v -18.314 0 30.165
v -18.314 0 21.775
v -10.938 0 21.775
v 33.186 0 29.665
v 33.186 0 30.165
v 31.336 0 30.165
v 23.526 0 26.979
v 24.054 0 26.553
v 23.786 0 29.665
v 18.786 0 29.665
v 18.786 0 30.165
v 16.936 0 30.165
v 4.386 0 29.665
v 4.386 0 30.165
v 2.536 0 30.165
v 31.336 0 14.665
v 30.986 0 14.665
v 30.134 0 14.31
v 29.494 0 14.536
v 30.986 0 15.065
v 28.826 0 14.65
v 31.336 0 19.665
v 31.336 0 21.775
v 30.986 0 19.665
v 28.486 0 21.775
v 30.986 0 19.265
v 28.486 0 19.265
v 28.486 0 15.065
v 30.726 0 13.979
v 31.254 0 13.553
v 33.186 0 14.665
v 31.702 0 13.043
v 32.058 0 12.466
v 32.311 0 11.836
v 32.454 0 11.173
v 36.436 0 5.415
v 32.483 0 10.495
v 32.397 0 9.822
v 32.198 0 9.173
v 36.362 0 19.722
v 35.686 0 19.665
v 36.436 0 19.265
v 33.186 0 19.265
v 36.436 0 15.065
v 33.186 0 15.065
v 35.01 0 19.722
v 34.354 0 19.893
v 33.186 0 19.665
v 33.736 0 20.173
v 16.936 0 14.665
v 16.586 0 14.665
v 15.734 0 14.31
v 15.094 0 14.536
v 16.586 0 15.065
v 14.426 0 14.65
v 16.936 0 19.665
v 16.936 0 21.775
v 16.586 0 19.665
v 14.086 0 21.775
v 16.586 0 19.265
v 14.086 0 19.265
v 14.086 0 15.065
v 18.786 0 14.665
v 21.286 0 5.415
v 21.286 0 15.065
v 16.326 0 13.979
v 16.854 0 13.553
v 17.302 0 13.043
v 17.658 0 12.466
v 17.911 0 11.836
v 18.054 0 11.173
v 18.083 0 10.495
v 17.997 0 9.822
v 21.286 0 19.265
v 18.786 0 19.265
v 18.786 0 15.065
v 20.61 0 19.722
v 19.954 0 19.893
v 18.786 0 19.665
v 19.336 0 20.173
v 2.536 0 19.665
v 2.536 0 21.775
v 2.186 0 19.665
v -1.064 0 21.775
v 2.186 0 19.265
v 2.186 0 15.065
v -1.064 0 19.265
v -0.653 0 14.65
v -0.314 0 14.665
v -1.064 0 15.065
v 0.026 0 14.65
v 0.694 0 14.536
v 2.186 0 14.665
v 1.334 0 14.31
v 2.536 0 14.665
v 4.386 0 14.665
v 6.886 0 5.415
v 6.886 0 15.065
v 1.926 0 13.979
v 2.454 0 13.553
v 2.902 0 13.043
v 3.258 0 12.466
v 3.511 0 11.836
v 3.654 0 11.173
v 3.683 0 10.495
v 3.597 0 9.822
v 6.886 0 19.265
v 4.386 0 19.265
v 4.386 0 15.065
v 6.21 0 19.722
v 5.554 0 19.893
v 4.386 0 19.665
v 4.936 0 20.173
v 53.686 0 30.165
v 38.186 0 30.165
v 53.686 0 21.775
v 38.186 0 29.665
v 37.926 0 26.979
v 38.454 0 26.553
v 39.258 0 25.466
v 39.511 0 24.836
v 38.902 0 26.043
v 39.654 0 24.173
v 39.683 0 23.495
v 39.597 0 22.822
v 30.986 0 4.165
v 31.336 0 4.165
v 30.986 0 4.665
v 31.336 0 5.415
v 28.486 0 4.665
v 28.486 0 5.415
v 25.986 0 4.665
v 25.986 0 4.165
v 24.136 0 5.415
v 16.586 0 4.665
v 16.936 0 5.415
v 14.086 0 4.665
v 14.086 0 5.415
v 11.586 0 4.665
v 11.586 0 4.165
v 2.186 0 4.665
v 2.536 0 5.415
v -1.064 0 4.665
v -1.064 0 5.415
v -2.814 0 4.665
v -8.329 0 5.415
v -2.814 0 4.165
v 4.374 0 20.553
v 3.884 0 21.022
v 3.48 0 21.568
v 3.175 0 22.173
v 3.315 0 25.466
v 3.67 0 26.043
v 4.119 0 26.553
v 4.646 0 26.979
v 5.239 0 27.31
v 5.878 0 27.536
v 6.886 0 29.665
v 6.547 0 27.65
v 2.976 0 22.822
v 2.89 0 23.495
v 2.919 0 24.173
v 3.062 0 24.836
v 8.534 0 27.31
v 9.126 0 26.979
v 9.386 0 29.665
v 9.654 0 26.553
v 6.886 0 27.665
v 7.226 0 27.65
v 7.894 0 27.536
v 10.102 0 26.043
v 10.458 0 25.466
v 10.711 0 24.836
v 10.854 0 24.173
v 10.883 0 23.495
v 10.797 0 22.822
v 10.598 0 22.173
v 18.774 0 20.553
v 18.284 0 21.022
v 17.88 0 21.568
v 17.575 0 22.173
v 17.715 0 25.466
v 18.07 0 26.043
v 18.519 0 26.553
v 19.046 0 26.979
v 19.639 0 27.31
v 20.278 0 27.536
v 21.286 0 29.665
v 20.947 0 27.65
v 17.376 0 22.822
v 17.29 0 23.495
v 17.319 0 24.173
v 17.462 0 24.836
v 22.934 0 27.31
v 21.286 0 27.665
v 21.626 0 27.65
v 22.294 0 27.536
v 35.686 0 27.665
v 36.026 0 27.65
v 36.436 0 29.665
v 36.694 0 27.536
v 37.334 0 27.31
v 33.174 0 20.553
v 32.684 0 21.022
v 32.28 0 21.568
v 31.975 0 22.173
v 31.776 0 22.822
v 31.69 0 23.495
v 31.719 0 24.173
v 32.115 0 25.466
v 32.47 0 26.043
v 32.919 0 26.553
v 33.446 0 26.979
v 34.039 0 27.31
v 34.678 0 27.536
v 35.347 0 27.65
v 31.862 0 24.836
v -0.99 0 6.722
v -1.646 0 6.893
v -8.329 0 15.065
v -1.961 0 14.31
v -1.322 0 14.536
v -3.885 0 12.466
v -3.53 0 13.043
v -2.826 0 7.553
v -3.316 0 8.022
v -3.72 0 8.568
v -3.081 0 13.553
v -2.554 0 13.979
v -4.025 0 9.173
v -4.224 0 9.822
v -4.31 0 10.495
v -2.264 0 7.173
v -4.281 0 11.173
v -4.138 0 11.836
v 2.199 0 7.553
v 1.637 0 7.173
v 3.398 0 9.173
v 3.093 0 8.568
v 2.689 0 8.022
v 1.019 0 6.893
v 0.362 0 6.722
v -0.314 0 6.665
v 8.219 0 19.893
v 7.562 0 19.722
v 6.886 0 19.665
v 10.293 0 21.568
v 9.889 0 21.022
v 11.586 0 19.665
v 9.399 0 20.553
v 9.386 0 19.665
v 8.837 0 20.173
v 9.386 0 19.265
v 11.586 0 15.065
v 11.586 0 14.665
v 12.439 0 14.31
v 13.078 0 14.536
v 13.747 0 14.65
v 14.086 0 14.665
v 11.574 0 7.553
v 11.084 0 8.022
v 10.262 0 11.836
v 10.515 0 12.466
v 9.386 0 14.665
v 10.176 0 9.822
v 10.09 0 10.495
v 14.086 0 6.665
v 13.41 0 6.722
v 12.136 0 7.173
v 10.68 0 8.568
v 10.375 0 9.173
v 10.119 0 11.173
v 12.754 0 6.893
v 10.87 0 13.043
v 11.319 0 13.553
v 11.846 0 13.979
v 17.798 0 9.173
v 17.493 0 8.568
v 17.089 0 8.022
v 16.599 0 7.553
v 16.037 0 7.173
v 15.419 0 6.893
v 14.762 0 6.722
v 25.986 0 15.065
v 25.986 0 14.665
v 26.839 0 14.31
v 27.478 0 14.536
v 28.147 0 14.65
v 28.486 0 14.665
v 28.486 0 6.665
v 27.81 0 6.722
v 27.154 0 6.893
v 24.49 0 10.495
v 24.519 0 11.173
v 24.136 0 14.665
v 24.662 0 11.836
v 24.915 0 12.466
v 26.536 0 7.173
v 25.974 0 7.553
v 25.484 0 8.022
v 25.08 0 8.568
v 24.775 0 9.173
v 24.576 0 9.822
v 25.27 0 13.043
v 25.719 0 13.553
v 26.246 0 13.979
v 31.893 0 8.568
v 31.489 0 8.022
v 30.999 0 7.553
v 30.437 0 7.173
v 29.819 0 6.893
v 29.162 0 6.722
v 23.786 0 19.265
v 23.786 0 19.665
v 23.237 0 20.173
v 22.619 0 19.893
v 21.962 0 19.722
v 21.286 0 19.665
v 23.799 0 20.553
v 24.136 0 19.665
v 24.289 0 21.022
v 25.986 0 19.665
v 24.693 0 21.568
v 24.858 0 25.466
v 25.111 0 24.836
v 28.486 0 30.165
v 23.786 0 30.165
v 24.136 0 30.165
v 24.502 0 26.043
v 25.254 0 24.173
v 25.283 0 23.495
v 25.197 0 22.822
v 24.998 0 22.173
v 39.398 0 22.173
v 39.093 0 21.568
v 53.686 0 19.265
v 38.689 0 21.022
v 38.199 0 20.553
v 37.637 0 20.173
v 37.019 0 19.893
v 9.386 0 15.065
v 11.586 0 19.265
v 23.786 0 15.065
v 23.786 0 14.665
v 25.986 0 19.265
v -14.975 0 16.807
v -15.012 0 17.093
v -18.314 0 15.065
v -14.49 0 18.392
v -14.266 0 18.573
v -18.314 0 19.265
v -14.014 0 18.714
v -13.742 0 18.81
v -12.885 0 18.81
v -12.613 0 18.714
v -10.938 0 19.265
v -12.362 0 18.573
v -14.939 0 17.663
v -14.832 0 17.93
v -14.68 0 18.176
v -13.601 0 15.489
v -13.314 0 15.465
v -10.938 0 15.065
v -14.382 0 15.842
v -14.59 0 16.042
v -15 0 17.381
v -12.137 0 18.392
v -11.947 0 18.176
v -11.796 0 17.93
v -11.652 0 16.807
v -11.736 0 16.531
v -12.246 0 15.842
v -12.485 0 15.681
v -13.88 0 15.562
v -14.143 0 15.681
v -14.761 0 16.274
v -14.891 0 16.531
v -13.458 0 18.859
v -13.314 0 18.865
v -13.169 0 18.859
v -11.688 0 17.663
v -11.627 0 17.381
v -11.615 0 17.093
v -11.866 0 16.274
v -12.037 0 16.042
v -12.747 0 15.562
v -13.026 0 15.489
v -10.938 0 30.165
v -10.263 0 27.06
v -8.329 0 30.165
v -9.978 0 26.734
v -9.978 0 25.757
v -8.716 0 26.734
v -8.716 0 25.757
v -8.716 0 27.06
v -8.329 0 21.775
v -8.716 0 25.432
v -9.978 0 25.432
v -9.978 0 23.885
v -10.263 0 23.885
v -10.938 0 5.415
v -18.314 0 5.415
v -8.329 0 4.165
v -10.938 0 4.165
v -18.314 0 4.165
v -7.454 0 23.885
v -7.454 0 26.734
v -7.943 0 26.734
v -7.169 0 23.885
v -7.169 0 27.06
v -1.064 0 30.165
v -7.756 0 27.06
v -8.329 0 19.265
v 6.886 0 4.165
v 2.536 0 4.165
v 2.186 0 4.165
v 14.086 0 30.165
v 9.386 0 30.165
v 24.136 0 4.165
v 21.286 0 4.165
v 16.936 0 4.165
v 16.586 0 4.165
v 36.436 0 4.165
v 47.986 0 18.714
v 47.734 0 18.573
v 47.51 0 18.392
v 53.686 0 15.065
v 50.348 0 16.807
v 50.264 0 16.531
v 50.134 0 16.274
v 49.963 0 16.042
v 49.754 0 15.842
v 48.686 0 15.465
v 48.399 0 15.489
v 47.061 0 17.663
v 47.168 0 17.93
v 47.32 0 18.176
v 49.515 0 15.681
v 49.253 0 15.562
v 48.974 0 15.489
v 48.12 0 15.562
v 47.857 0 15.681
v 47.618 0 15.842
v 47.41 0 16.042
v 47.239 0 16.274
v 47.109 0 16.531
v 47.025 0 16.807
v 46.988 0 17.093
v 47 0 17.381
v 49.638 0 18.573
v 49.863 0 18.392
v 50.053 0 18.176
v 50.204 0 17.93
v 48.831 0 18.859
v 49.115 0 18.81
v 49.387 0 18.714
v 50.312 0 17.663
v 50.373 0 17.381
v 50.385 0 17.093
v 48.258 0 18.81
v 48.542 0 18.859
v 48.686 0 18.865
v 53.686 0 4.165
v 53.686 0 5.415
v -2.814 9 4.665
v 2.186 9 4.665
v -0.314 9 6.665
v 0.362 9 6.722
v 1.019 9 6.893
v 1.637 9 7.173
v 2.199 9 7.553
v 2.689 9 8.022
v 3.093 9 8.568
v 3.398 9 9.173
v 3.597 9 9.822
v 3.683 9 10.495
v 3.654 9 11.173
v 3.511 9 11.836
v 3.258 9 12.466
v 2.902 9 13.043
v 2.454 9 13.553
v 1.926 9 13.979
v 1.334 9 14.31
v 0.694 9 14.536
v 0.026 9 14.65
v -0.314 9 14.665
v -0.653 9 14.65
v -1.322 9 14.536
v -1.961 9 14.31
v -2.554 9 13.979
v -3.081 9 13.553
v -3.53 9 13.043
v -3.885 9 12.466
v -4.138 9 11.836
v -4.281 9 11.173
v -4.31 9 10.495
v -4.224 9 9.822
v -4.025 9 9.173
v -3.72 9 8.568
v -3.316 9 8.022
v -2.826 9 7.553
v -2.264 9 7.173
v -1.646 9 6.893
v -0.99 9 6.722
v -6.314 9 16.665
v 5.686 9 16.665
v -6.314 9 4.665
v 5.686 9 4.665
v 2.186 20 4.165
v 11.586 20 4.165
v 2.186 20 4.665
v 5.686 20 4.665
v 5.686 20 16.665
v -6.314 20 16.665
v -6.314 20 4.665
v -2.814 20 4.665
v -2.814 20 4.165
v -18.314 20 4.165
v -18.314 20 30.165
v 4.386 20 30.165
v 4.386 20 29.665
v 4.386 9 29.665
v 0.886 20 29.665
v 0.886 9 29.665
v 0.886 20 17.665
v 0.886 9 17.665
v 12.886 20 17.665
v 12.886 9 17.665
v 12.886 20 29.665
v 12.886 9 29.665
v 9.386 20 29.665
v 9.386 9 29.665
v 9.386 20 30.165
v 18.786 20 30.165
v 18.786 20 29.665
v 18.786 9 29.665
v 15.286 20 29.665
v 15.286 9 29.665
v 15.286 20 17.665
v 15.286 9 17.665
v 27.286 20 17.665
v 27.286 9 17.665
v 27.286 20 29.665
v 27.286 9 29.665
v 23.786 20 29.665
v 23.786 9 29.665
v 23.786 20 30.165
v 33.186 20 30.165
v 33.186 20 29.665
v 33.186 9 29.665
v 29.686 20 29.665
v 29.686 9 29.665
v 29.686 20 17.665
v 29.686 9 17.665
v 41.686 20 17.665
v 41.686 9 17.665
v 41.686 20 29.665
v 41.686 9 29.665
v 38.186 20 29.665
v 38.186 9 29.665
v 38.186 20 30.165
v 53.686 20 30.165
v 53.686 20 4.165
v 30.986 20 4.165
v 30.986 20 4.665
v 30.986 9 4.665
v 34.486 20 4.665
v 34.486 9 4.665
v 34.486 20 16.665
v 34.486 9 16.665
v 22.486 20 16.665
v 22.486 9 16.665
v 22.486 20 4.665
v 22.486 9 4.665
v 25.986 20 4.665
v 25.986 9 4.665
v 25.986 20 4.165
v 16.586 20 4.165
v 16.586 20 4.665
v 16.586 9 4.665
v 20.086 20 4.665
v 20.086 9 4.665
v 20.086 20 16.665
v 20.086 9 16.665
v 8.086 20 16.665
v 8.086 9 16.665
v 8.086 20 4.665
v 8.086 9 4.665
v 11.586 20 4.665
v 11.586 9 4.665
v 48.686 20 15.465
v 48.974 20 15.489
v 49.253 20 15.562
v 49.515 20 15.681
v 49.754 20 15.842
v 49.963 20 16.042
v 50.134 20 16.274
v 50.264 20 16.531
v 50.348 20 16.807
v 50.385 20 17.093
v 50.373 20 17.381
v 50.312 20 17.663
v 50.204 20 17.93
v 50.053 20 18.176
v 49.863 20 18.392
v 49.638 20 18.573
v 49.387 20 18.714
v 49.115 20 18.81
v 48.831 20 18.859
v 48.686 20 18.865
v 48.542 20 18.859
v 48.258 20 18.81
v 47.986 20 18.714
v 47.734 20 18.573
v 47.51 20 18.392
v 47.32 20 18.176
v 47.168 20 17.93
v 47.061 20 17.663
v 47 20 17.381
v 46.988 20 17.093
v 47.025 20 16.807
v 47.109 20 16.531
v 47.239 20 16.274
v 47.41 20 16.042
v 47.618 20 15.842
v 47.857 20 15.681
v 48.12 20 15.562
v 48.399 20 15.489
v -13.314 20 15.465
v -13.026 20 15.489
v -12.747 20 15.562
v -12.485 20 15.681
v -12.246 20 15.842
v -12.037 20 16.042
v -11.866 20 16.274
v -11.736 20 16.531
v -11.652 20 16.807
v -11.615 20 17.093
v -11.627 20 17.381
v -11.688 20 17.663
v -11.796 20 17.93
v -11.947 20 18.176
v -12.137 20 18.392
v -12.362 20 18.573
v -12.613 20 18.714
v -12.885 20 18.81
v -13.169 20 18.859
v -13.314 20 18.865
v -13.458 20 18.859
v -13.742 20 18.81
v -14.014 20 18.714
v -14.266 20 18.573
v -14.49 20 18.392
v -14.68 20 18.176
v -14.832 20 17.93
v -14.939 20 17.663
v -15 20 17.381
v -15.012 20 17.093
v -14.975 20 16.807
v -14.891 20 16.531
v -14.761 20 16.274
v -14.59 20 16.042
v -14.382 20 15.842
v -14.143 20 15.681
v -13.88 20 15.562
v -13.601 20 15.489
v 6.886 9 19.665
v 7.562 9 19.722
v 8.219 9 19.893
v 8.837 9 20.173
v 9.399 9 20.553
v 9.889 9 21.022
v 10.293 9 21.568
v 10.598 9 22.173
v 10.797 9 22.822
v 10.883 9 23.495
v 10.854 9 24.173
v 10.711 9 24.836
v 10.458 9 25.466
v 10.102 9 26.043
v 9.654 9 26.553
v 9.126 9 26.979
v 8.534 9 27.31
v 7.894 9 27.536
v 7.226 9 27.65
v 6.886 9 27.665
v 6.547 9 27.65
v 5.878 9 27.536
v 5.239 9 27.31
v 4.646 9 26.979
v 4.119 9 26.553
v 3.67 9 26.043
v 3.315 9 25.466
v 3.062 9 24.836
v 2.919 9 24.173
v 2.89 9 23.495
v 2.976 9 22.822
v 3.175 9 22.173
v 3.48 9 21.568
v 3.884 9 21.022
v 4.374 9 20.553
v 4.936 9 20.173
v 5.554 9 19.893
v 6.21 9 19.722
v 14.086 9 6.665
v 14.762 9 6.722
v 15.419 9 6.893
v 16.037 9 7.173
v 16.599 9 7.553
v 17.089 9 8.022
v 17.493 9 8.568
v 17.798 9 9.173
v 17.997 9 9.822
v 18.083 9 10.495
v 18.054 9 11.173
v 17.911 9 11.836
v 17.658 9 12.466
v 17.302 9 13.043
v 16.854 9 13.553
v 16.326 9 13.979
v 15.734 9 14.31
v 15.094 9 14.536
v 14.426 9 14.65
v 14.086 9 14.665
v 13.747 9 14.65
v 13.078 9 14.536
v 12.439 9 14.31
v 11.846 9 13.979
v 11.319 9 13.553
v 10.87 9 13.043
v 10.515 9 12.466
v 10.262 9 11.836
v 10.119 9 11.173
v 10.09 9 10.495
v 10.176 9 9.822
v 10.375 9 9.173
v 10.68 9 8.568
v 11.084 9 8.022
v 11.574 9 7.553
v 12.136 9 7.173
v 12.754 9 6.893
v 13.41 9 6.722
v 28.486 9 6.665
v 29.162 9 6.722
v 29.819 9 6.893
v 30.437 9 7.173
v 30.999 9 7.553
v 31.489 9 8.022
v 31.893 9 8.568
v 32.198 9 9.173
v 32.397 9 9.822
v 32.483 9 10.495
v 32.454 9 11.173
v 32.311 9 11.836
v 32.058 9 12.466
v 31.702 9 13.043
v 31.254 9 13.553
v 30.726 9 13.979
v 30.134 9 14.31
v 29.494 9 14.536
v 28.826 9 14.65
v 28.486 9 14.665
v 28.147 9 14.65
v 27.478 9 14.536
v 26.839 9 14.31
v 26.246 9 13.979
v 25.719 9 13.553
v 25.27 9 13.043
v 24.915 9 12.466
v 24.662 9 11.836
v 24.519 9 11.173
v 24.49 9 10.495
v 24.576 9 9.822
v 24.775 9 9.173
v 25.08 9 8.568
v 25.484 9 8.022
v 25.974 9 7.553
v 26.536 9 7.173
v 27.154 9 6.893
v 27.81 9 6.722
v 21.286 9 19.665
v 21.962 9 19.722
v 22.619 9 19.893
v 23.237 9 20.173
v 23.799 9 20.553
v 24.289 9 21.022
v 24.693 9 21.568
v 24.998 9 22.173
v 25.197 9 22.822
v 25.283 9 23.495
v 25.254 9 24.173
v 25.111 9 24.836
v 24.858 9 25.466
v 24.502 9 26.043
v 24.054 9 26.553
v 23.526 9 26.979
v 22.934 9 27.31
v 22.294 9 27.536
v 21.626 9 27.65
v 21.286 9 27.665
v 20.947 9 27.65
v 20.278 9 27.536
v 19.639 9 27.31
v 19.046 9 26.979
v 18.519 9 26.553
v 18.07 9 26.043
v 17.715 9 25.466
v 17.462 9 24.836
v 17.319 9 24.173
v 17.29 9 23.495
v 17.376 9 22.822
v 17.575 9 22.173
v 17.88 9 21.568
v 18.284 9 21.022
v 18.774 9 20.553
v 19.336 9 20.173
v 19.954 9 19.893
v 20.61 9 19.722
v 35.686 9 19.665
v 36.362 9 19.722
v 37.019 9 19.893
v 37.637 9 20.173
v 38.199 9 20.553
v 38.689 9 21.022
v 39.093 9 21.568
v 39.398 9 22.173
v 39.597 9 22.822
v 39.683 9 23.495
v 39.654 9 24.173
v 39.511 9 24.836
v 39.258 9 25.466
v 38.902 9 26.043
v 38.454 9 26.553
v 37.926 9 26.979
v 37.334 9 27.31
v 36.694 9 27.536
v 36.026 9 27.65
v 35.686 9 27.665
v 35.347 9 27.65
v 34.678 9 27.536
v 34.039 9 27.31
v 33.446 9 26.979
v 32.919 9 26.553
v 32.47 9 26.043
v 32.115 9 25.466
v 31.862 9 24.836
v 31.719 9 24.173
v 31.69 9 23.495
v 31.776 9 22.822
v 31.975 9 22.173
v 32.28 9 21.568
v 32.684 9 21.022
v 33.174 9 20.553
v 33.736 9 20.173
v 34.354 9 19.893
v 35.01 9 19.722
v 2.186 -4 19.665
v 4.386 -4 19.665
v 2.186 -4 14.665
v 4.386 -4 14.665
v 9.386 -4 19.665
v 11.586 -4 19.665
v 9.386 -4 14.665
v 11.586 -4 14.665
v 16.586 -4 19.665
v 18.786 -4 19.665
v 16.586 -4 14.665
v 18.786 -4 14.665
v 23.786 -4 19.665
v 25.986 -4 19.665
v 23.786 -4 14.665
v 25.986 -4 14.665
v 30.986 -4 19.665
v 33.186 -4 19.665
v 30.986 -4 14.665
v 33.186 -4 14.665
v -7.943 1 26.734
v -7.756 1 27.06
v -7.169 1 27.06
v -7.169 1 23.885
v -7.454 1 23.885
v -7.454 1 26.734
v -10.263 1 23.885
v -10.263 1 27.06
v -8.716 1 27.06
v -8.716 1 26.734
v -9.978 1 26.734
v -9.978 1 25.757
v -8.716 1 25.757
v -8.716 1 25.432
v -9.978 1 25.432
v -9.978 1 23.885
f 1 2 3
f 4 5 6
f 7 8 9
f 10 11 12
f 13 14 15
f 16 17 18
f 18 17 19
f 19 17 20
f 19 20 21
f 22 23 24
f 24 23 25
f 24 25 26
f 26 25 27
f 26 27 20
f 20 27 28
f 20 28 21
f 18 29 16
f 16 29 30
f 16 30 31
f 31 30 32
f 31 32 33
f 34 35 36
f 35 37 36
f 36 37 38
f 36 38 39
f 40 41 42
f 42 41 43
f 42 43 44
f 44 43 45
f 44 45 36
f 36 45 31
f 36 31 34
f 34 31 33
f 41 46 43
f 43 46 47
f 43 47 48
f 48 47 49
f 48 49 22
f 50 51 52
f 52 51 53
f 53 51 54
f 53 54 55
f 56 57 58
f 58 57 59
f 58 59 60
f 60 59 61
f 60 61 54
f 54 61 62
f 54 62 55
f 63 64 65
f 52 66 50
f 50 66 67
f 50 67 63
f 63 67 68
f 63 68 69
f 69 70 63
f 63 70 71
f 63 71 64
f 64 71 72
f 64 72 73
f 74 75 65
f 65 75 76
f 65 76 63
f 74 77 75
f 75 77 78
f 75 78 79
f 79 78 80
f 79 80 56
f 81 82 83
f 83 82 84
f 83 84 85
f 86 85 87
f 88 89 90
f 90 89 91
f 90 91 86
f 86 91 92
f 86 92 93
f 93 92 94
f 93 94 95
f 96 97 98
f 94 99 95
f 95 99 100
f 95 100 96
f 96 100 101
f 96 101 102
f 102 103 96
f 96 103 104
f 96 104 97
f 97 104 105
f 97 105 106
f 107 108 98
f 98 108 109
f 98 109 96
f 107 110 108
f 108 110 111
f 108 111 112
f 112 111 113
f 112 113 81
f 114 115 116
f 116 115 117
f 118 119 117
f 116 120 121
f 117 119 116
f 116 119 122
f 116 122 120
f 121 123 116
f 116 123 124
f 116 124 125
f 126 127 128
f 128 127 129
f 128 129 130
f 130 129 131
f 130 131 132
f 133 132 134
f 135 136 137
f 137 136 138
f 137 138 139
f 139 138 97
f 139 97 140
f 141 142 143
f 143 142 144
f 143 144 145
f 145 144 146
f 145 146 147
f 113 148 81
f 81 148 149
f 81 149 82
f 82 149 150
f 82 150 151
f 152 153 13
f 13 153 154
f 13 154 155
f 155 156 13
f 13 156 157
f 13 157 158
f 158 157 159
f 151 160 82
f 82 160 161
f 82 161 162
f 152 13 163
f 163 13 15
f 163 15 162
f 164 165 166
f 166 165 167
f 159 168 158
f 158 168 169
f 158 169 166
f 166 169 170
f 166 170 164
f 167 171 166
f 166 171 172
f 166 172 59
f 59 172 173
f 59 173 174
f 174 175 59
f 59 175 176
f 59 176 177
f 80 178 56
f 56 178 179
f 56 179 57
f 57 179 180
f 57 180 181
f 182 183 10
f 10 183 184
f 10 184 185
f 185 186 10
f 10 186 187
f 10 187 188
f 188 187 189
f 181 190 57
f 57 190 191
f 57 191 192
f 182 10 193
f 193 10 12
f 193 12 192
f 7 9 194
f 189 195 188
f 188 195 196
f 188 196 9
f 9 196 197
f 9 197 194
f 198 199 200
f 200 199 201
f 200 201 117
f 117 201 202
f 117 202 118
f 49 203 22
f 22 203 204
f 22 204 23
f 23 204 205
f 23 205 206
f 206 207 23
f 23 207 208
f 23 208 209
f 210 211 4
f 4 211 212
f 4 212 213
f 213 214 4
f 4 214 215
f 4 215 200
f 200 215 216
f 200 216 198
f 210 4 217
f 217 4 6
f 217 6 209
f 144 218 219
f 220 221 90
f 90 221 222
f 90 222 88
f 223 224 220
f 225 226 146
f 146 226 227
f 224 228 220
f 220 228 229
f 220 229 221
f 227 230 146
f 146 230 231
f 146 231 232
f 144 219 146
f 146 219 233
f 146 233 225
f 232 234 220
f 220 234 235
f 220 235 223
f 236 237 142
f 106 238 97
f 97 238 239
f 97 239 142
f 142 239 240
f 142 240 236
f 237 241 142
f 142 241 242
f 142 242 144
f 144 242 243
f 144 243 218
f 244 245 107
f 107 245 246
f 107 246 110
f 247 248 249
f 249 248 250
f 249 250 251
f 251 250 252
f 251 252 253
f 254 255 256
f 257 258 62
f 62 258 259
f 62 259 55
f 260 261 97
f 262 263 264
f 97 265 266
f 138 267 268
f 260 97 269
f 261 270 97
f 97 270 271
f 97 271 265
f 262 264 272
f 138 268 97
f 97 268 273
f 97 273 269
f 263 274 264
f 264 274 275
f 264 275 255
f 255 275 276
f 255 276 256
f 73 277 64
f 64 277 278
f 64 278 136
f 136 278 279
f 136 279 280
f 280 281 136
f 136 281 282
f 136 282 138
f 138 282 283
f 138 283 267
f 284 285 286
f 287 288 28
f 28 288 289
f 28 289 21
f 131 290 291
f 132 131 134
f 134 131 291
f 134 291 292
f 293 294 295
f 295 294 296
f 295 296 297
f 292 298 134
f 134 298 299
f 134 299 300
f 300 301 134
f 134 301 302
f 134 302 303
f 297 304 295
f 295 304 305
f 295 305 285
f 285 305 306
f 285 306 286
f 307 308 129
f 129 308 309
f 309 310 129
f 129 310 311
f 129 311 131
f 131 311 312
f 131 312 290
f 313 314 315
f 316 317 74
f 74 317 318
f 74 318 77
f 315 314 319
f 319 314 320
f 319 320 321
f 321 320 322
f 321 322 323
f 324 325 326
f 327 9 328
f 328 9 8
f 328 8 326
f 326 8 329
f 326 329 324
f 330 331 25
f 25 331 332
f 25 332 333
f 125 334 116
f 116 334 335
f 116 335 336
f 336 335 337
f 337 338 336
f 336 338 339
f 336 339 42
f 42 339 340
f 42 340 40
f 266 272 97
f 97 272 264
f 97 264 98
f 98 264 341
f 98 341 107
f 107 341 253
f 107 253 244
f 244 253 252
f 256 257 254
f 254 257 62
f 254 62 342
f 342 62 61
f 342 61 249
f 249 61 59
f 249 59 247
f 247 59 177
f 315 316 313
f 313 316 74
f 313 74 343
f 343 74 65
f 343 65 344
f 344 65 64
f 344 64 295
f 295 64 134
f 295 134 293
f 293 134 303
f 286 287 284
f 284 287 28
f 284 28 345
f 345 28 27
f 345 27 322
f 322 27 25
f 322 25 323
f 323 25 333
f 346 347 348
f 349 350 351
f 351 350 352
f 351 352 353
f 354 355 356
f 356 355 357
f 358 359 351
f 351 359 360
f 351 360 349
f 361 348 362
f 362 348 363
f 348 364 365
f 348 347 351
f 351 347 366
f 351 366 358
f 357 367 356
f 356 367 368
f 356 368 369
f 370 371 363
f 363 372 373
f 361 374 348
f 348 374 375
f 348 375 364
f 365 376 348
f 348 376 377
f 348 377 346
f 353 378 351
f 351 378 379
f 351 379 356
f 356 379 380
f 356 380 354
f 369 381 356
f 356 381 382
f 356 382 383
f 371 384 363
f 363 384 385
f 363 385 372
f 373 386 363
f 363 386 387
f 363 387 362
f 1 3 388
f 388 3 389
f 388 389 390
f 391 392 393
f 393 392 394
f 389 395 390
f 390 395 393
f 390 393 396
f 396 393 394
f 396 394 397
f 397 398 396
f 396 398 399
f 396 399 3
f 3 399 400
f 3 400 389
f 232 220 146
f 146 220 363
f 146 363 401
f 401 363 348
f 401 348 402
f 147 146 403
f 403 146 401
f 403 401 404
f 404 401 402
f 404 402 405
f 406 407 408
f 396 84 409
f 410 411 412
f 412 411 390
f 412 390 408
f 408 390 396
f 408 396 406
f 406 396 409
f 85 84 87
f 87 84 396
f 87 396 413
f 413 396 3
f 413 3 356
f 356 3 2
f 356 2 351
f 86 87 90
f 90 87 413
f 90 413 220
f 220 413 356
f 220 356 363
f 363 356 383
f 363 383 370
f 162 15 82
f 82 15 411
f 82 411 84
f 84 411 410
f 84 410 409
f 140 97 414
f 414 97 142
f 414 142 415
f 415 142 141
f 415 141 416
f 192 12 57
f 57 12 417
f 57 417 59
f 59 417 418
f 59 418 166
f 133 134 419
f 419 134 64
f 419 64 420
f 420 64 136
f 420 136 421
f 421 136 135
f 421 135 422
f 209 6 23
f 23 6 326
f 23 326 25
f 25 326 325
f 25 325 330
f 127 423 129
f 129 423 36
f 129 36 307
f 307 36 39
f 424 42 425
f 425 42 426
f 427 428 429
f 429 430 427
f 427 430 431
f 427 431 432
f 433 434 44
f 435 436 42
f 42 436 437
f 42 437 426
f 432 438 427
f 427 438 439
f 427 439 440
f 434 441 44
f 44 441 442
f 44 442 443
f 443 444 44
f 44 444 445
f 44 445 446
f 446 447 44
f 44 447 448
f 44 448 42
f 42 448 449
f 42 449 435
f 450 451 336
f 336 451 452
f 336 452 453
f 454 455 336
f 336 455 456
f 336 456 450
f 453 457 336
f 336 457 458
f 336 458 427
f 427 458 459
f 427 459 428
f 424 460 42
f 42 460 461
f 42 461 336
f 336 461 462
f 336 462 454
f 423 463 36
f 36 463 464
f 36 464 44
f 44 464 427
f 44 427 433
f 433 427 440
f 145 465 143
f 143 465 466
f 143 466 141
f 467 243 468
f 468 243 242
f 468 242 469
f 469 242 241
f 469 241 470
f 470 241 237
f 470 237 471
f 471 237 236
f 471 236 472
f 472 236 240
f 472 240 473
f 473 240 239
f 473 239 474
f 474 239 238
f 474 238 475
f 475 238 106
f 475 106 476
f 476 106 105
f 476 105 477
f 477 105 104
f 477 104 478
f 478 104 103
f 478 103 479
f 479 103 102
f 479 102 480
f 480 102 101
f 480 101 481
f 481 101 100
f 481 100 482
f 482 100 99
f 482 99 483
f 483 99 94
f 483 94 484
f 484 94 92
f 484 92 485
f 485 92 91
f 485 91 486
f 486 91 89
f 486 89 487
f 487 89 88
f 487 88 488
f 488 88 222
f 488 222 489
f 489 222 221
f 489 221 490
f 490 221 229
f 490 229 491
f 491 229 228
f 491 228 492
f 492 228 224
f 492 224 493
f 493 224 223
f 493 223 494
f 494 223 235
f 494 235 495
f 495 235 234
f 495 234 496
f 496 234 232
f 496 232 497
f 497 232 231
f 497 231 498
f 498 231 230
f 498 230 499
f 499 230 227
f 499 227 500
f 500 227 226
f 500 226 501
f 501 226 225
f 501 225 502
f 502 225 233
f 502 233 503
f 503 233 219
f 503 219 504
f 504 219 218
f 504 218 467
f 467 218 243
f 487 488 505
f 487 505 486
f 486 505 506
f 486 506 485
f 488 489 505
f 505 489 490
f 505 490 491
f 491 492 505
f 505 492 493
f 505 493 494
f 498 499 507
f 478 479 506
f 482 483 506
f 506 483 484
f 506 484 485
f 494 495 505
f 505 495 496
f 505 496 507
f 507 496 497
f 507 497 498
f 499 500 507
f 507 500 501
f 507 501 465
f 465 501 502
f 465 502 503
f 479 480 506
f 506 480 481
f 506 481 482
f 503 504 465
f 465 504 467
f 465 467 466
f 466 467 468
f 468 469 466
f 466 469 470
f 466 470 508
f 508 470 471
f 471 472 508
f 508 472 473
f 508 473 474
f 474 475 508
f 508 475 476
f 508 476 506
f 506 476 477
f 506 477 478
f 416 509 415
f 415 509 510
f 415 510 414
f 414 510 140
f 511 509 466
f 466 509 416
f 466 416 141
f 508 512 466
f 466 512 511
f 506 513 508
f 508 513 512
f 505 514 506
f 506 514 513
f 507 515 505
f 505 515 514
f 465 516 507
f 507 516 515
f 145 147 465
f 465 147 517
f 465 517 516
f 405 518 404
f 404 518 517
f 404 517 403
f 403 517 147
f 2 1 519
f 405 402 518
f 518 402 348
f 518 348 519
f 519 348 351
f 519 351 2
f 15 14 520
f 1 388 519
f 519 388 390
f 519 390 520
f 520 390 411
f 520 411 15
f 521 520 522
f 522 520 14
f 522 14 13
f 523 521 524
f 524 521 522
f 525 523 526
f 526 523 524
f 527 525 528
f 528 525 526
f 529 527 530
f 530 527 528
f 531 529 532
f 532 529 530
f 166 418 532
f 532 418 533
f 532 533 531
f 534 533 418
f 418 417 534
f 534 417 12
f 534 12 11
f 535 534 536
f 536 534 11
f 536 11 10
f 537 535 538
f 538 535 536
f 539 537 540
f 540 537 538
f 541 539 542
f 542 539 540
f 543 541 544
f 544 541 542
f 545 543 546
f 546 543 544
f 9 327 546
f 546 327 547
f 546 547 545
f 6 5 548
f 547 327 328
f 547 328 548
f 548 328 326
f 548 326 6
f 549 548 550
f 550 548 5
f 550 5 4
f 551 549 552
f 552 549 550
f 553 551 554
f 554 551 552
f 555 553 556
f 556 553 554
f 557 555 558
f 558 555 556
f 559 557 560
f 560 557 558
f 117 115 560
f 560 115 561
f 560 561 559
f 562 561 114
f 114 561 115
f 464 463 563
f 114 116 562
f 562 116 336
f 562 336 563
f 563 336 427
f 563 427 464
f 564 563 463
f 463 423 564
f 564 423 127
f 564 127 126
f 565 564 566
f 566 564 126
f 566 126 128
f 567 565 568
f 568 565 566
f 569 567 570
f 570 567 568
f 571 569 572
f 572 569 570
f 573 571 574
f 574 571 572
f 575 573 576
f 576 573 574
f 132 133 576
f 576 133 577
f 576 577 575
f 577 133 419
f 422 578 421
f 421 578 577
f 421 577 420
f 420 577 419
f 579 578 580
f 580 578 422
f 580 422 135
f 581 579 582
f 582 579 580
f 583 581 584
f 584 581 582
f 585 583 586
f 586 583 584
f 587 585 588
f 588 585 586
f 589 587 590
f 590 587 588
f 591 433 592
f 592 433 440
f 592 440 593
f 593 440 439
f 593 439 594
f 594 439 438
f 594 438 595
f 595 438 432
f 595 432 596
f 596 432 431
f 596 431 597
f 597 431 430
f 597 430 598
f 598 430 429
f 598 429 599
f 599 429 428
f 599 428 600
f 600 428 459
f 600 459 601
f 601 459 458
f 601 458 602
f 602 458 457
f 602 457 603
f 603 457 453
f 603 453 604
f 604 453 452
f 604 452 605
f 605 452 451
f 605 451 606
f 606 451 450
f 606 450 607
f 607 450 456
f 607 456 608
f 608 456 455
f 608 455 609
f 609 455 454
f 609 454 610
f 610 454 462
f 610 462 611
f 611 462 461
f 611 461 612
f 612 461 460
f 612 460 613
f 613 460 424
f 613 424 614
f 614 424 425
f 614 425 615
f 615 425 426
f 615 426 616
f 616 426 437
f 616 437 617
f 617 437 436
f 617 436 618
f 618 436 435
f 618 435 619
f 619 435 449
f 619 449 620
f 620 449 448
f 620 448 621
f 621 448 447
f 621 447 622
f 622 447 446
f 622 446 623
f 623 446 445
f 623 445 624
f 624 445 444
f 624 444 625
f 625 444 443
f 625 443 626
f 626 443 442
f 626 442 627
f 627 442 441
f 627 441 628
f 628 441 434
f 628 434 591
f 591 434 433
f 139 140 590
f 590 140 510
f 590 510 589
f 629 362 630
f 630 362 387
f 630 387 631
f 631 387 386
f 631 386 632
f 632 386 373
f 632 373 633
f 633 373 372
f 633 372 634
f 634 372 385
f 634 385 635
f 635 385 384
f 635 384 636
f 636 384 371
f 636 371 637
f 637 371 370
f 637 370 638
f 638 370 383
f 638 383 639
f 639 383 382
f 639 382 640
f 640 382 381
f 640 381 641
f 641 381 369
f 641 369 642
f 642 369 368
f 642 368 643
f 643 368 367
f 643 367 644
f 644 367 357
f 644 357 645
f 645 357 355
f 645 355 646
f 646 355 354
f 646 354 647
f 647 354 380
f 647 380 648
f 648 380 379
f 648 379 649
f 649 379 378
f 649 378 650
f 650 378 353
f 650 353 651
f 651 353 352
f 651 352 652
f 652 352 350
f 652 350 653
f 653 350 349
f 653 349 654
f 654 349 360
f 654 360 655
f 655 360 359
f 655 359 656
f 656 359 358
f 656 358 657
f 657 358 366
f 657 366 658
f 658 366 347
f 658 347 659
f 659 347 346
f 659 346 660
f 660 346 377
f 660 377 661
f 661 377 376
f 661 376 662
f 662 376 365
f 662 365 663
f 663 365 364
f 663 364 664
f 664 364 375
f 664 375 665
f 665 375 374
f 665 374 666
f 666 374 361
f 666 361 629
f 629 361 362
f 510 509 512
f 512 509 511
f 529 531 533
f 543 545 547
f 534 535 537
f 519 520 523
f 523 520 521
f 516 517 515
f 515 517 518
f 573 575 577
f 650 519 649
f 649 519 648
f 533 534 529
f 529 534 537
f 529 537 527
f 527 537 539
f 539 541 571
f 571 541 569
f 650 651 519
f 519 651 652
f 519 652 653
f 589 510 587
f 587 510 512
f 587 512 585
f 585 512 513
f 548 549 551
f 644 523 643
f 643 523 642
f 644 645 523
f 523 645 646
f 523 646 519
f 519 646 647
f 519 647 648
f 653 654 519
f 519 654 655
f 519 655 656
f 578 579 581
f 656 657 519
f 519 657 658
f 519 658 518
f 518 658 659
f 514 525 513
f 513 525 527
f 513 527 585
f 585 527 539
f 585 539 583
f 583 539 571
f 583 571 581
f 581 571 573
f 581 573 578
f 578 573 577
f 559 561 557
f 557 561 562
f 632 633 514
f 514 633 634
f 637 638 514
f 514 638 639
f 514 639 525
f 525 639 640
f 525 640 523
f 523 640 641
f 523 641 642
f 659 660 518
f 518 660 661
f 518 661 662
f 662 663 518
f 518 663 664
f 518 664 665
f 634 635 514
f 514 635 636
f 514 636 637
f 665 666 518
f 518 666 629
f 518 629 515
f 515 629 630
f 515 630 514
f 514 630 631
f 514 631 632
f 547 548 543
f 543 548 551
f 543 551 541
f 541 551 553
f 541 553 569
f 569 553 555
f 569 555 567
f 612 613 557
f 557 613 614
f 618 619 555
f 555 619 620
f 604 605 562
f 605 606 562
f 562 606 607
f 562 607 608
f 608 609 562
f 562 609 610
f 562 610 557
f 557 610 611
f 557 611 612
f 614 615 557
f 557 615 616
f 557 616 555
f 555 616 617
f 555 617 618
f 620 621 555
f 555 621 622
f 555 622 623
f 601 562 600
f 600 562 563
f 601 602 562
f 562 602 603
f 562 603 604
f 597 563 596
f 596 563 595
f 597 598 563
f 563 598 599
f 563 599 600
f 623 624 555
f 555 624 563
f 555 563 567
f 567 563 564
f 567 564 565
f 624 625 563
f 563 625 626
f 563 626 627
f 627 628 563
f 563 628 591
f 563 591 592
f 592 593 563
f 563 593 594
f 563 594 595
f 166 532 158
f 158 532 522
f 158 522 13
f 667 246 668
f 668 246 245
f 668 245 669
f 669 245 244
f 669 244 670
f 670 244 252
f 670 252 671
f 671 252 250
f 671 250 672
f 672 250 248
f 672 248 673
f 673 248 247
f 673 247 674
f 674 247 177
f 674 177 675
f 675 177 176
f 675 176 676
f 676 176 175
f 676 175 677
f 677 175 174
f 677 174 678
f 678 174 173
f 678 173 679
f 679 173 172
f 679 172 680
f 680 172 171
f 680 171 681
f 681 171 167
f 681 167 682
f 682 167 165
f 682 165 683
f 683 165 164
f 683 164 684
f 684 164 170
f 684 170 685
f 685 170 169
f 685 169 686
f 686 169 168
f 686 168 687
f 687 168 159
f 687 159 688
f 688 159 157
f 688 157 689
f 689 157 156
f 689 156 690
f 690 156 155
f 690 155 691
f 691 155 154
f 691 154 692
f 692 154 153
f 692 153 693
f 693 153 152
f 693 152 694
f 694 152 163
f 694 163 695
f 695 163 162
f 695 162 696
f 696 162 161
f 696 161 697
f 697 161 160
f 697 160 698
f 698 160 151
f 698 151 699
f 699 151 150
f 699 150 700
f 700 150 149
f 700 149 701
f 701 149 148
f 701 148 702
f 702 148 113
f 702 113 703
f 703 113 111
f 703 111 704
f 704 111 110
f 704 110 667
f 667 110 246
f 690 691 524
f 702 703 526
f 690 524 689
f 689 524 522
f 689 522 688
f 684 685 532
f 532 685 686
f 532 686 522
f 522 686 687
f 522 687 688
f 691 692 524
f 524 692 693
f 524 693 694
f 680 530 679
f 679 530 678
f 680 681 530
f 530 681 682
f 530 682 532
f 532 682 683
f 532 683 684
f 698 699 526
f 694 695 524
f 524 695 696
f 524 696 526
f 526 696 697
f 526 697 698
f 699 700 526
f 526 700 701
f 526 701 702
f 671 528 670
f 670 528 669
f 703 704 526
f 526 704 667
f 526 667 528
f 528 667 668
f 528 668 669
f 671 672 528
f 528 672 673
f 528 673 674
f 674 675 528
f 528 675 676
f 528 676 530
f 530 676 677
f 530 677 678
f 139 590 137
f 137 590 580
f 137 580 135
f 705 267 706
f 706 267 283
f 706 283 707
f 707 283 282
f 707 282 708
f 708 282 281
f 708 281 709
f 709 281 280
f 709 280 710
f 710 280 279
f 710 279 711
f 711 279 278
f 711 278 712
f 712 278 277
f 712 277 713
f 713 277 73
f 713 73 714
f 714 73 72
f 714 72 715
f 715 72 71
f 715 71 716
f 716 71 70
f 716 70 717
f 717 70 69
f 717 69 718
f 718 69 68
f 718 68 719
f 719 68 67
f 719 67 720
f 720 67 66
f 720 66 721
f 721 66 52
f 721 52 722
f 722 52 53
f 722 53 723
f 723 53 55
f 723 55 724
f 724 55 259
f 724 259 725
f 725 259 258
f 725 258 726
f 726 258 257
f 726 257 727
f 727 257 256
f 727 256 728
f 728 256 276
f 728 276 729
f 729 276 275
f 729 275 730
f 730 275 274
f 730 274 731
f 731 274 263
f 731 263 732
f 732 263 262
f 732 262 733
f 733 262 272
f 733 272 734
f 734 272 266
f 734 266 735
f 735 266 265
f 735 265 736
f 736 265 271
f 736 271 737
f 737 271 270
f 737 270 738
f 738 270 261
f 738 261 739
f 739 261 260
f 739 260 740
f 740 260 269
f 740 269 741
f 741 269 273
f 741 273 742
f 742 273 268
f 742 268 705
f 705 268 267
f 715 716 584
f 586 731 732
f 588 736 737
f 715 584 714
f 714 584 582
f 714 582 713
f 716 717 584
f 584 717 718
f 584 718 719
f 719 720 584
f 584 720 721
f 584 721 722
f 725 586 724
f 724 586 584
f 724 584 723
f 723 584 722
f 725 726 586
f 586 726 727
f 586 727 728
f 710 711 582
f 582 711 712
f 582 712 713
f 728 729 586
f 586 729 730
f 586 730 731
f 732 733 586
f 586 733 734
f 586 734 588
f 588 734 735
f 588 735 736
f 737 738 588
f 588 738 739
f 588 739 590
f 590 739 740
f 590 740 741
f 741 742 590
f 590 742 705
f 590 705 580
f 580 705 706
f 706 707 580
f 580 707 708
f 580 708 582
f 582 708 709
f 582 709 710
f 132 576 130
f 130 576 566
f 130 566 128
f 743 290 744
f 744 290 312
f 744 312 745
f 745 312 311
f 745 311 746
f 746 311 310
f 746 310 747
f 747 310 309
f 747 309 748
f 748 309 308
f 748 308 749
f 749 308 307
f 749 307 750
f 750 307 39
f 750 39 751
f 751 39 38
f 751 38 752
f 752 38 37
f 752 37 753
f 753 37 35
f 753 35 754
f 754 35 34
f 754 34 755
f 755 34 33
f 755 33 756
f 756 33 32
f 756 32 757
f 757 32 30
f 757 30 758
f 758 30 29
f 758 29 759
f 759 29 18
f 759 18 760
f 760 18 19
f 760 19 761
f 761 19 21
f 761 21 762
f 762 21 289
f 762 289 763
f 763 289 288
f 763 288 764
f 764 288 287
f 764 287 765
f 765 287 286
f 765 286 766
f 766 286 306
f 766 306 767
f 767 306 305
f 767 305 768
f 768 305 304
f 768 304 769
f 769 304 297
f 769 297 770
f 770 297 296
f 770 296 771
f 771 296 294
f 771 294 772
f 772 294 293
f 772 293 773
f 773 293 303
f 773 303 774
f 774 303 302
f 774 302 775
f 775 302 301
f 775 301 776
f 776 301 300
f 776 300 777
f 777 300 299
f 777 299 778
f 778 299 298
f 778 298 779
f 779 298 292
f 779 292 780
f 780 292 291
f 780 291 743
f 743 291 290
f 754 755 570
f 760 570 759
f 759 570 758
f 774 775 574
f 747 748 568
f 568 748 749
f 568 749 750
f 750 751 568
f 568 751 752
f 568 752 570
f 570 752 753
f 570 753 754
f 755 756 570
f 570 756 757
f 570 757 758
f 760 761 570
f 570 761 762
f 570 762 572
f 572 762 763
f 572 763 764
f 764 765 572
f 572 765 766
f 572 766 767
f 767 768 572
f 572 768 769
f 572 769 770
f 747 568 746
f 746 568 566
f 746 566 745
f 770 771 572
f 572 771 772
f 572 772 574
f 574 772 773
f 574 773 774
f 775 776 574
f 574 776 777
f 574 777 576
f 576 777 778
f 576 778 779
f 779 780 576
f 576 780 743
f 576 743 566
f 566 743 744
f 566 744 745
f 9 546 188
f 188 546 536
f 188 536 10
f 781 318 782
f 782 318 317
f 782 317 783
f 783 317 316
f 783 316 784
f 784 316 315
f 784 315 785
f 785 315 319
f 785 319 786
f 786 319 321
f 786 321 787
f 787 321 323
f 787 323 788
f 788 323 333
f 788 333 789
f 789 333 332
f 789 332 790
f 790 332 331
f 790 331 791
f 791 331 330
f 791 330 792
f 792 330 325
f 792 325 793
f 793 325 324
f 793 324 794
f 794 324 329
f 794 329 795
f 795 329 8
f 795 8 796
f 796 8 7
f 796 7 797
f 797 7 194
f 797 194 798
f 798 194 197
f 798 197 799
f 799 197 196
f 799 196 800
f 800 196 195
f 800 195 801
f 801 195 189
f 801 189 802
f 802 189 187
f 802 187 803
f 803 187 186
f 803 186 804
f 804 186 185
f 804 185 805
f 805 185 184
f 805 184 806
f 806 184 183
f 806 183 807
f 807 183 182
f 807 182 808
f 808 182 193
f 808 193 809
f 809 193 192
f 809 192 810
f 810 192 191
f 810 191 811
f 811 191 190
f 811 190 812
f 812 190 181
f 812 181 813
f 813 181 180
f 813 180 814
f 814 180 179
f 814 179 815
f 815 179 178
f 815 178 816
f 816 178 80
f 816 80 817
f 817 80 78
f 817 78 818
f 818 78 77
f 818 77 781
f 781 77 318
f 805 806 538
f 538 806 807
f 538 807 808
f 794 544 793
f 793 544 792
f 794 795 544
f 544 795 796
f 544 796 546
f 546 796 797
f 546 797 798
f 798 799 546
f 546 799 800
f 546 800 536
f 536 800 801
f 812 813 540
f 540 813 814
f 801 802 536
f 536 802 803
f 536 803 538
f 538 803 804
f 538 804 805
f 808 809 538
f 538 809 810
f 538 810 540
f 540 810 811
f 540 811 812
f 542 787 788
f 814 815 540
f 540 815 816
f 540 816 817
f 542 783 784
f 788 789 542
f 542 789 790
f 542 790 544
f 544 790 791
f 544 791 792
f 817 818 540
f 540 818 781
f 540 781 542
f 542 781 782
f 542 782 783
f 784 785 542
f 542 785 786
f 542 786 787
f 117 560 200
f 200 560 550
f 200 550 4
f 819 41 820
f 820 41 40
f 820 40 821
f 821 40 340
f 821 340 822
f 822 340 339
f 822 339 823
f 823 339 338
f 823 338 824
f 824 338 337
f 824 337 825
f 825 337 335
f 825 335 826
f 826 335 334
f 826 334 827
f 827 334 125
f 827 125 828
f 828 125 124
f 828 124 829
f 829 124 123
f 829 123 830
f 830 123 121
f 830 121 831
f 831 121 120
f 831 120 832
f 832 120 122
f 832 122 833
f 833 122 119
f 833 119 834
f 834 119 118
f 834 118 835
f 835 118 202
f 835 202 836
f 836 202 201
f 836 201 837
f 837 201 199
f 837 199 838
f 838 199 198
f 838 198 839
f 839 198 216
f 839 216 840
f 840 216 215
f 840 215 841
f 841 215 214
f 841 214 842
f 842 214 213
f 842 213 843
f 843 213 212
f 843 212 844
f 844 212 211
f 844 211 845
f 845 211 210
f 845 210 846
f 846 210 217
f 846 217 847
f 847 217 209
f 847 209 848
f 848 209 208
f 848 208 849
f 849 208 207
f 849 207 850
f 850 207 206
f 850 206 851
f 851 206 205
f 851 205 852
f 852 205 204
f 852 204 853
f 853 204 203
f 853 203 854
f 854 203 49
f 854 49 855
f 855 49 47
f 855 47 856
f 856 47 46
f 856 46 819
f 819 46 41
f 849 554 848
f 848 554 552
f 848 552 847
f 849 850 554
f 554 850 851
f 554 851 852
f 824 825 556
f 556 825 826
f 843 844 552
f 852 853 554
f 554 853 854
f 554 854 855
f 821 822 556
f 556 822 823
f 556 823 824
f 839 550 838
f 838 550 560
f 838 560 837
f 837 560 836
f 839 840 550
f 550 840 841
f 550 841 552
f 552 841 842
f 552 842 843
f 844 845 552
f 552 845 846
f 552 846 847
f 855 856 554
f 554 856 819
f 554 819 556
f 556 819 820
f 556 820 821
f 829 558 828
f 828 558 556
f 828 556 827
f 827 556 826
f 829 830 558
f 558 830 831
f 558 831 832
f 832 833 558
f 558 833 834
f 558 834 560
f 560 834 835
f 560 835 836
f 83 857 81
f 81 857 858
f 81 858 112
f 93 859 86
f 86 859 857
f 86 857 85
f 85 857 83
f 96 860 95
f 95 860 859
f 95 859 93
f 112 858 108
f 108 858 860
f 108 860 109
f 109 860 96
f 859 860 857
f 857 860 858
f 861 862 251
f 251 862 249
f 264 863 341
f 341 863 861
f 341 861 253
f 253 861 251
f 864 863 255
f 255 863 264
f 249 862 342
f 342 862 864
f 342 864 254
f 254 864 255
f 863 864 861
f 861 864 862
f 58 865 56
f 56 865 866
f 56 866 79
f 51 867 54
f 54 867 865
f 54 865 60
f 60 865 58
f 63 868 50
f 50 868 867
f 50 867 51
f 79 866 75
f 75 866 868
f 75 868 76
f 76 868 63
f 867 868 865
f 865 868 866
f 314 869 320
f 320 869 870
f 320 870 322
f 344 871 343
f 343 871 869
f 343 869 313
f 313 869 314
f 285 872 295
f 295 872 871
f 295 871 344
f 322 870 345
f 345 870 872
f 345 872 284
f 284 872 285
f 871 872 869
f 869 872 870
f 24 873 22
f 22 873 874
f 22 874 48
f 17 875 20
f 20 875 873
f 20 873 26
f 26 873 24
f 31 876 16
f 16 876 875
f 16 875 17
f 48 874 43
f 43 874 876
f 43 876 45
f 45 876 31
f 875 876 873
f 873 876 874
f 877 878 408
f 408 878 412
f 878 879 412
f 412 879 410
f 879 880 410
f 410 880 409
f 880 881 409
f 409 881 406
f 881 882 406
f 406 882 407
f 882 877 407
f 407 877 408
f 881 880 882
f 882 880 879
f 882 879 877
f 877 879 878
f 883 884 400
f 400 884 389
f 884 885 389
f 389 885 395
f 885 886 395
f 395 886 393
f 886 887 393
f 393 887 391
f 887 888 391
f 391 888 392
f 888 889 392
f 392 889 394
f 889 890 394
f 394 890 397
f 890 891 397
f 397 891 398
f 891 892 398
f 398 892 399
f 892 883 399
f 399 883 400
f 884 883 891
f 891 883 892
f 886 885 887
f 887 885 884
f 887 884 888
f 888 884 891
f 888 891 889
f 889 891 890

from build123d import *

# Parameters (mm, degrees)
SKETCH1_W             = 12
SKETCH1_H             = 12
SKETCH1_R             = 4
BOSS_EXTRUDE1_DEPTH   = 9
BOSS_EXTRUDE1_2_DEPTH = 9
BOSS_EXTRUDE1_3_DEPTH = 9
BOSS_EXTRUDE1_4_DEPTH = 9
BOSS_EXTRUDE1_5_DEPTH = 9
BOSS_EXTRUDE1_6_DEPTH = 9
SKETCH1_4_R           = 1.7
BOSS_EXTRUDE2_DEPTH   = 20
SKETCH2_W             = 2.2
SKETCH2_H             = 5.00000001
BOSS_EXTRUDE3_DEPTH   = 4
BOSS_EXTRUDE4_DEPTH   = 1
CUT_EXTRUDE1_DEPTH    = 1


with BuildPart() as part:
    # Sketch1 → Boss-Extrude1 (new body)
    with BuildSketch(Plane(origin=(0, 0, 0), x_dir=(1, 0, 0), z_dir=(0, 1, 0))):
        with Locations((-0.31361246, -10.664883002)):
            Rectangle(SKETCH1_W, SKETCH1_H)
        with Locations((-0.31361246, -10.664883002)):
            Circle(SKETCH1_R, mode=Mode.SUBTRACT)
    extrude(amount=BOSS_EXTRUDE1_DEPTH)



with BuildPart() as body_2:
    # Sketch1 → Boss-Extrude1 2 (new body)
    with BuildSketch(Plane(origin=(0, 0, 0), x_dir=(1, 0, 0), z_dir=(0, 1, 0))):
        with Locations((14.08638754, -10.664883022)):
            Rectangle(SKETCH1_W, SKETCH1_H)
        with Locations((14.08638754, -10.664883022)):
            Circle(SKETCH1_R, mode=Mode.SUBTRACT)
    extrude(amount=BOSS_EXTRUDE1_2_DEPTH)


with BuildPart() as body_3:
    # Sketch1 → Boss-Extrude1 3 (new body)
    with BuildSketch(Plane(origin=(0, 0, 0), x_dir=(1, 0, 0), z_dir=(0, 1, 0))):
        with Locations((6.88638754, -23.664883012)):
            Rectangle(SKETCH1_W, SKETCH1_H)
        with Locations((6.88638754, -23.664883012)):
            Circle(SKETCH1_R, mode=Mode.SUBTRACT)
    extrude(amount=BOSS_EXTRUDE1_3_DEPTH)


with BuildPart() as body_4:
    # Sketch1 → Boss-Extrude1 4 (new body)
    with BuildSketch(Plane(origin=(0, 0, 0), x_dir=(1, 0, 0), z_dir=(0, 1, 0))):
        with Locations((21.28638754, -23.664883033)):
            Rectangle(SKETCH1_W, SKETCH1_H)
        with Locations((21.28638754, -23.664883033)):
            Circle(SKETCH1_R, mode=Mode.SUBTRACT)
    extrude(amount=BOSS_EXTRUDE1_4_DEPTH)


with BuildPart() as body_5:
    # Sketch1 → Boss-Extrude1 5 (new body)
    with BuildSketch(Plane(origin=(0, 0, 0), x_dir=(1, 0, 0), z_dir=(0, 1, 0))):
        with Locations((28.48638754, -10.664883043)):
            Rectangle(SKETCH1_W, SKETCH1_H)
        with Locations((28.48638754, -10.664883043)):
            Circle(SKETCH1_R, mode=Mode.SUBTRACT)
    extrude(amount=BOSS_EXTRUDE1_5_DEPTH)


with BuildPart() as body_6:
    # Sketch1 → Boss-Extrude1 6 (new body)
    with BuildSketch(Plane(origin=(0, 0, 0), x_dir=(1, 0, 0), z_dir=(0, 1, 0))):
        with Locations((35.68638754, -23.664883053)):
            Rectangle(SKETCH1_W, SKETCH1_H)
        with Locations((35.68638754, -23.664883053)):
            Circle(SKETCH1_R, mode=Mode.SUBTRACT)
    extrude(amount=BOSS_EXTRUDE1_6_DEPTH)


with BuildPart() as part_1:
    add(part.part)

    add(body_2.part)  # Boss-Extrude2 merges body 2

    add(body_3.part)  # Boss-Extrude2 merges body 3

    add(body_4.part)  # Boss-Extrude2 merges body 4

    add(body_5.part)  # Boss-Extrude2 merges body 5

    add(body_6.part)  # Boss-Extrude2 merges body 6
    # Sketch1<4> → Boss-Extrude2 (add)
    with BuildSketch(Plane(origin=(0, 0, 0), x_dir=(1, 0, 0), z_dir=(0, 1, 0))):
        Polygon((7.58638754, -4.164883022), (6.18638754, -4.164883002), (2.18638754, -4.164883002), (2.18638754, -4.664883002), (5.68638754, -4.664883002), (5.68638754, -16.664883002), (-6.31361246, -16.664883002), (-6.31361246, -4.664883002), (-2.81361246, -4.664883002), (-2.81361246, -4.164883002), (-18.31361246, -4.164883002), (-18.31361246, -30.164883012), (4.38638754, -30.164883012), (4.38638754, -29.664883012), (0.88638754, -29.664883012), (0.88638754, -17.664883012), (12.88638754, -17.664883012), (12.88638754, -29.664883012), (9.38638754, -29.664883012), (9.38638754, -30.164883012), (13.38638754, -30.164883012), (14.78638754, -30.164883033), (18.78638754, -30.164883033), (18.78638754, -29.664883033), (15.28638754, -29.664883033), (15.28638754, -17.664883033), (27.28638754, -17.664883033), (27.28638754, -29.664883033), (23.78638754, -29.664883033), (23.78638754, -30.164883033), (27.78638754, -30.164883033), (29.18638754, -30.164883053), (33.18638754, -30.164883053), (33.18638754, -29.664883053), (29.68638754, -29.664883053), (29.68638754, -17.664883053), (41.68638754, -17.664883053), (41.68638754, -29.664883053), (38.18638754, -29.664883053), (38.18638754, -30.164883053), (42.18638754, -30.164883053), (53.68638754, -30.164883012), (53.68638754, -4.164883002), (34.98638754, -4.164883043), (30.98638754, -4.164883043), (30.98638754, -4.664883043), (34.48638754, -4.664883043), (34.48638754, -16.664883043), (22.48638754, -16.664883043), (22.48638754, -4.664883043), (25.98638754, -4.664883043), (25.98638754, -4.164883043), (21.98638754, -4.164883043), (20.58638754, -4.164883022), (16.58638754, -4.164883022), (16.58638754, -4.664883022), (20.08638754, -4.664883022), (20.08638754, -16.664883022), (8.08638754, -16.664883022), (8.08638754, -4.664883022), (11.58638754, -4.664883022), (11.58638754, -4.164883022), align=None)
        with Locations((-13.31361246, -17.164883007)):
            Circle(SKETCH1_4_R, mode=Mode.SUBTRACT)
        with Locations((48.68638754, -17.164883007)):
            Circle(SKETCH1_4_R, mode=Mode.SUBTRACT)
    extrude(amount=BOSS_EXTRUDE2_DEPTH)

    # Sketch2 → Boss-Extrude3 (add)
    with BuildSketch(Plane.XZ):
        with Locations((3.28638754, 17.164883007)):
            Rectangle(SKETCH2_W, SKETCH2_H)
        with Locations((10.48638754, 17.164883023)):
            Rectangle(SKETCH2_W, SKETCH2_H)
        with Locations((17.68638754, 17.164883038)):
            Rectangle(SKETCH2_W, SKETCH2_H)
        with Locations((24.88638754, 17.164883045)):
            Rectangle(SKETCH2_W, SKETCH2_H)
        with Locations((32.08638754, 17.164883007)):
            Rectangle(SKETCH2_W, SKETCH2_H)
    extrude(amount=BOSS_EXTRUDE3_DEPTH)

    # Sketch3 → Boss-Extrude4 (add)
    with BuildSketch(Plane.XZ):
        Polygon((-10.262781623, 27.059918831), (-8.715986751, 27.059918831), (-8.715986751, 26.734277806), (-9.977845725, 26.734277806), (-9.977845725, 25.757354729), (-8.715986751, 25.757354729), (-8.715986751, 25.431713703), (-9.977845725, 25.431713703), (-9.977845725, 23.884918831), (-10.262781623, 23.884918831), align=None)
        Polygon((-7.75623615, 27.059918831), (-7.169191879, 27.059918831), (-7.169191879, 23.884918831), (-7.454127777, 23.884918831), (-7.454127777, 26.734277806), (-7.942589315, 26.734277806), align=None)
    extrude(amount=-BOSS_EXTRUDE4_DEPTH)

    # Sketch3<2> → Cut-Extrude1 (cut)
    with BuildSketch(Plane.XZ):
        Polygon((-10.262781623, 27.059918831), (-8.715986751, 27.059918831), (-8.715986751, 26.734277806), (-9.977845725, 26.734277806), (-9.977845725, 25.757354729), (-8.715986751, 25.757354729), (-8.715986751, 25.431713703), (-9.977845725, 25.431713703), (-9.977845725, 23.884918831), (-10.262781623, 23.884918831), align=None)
        Polygon((-7.75623615, 27.059918831), (-7.169191879, 27.059918831), (-7.169191879, 23.884918831), (-7.454127777, 23.884918831), (-7.454127777, 26.734277806), (-7.942589315, 26.734277806), align=None)
    extrude(amount=-CUT_EXTRUDE1_DEPTH, mode=Mode.SUBTRACT)


solid = part_1.part
